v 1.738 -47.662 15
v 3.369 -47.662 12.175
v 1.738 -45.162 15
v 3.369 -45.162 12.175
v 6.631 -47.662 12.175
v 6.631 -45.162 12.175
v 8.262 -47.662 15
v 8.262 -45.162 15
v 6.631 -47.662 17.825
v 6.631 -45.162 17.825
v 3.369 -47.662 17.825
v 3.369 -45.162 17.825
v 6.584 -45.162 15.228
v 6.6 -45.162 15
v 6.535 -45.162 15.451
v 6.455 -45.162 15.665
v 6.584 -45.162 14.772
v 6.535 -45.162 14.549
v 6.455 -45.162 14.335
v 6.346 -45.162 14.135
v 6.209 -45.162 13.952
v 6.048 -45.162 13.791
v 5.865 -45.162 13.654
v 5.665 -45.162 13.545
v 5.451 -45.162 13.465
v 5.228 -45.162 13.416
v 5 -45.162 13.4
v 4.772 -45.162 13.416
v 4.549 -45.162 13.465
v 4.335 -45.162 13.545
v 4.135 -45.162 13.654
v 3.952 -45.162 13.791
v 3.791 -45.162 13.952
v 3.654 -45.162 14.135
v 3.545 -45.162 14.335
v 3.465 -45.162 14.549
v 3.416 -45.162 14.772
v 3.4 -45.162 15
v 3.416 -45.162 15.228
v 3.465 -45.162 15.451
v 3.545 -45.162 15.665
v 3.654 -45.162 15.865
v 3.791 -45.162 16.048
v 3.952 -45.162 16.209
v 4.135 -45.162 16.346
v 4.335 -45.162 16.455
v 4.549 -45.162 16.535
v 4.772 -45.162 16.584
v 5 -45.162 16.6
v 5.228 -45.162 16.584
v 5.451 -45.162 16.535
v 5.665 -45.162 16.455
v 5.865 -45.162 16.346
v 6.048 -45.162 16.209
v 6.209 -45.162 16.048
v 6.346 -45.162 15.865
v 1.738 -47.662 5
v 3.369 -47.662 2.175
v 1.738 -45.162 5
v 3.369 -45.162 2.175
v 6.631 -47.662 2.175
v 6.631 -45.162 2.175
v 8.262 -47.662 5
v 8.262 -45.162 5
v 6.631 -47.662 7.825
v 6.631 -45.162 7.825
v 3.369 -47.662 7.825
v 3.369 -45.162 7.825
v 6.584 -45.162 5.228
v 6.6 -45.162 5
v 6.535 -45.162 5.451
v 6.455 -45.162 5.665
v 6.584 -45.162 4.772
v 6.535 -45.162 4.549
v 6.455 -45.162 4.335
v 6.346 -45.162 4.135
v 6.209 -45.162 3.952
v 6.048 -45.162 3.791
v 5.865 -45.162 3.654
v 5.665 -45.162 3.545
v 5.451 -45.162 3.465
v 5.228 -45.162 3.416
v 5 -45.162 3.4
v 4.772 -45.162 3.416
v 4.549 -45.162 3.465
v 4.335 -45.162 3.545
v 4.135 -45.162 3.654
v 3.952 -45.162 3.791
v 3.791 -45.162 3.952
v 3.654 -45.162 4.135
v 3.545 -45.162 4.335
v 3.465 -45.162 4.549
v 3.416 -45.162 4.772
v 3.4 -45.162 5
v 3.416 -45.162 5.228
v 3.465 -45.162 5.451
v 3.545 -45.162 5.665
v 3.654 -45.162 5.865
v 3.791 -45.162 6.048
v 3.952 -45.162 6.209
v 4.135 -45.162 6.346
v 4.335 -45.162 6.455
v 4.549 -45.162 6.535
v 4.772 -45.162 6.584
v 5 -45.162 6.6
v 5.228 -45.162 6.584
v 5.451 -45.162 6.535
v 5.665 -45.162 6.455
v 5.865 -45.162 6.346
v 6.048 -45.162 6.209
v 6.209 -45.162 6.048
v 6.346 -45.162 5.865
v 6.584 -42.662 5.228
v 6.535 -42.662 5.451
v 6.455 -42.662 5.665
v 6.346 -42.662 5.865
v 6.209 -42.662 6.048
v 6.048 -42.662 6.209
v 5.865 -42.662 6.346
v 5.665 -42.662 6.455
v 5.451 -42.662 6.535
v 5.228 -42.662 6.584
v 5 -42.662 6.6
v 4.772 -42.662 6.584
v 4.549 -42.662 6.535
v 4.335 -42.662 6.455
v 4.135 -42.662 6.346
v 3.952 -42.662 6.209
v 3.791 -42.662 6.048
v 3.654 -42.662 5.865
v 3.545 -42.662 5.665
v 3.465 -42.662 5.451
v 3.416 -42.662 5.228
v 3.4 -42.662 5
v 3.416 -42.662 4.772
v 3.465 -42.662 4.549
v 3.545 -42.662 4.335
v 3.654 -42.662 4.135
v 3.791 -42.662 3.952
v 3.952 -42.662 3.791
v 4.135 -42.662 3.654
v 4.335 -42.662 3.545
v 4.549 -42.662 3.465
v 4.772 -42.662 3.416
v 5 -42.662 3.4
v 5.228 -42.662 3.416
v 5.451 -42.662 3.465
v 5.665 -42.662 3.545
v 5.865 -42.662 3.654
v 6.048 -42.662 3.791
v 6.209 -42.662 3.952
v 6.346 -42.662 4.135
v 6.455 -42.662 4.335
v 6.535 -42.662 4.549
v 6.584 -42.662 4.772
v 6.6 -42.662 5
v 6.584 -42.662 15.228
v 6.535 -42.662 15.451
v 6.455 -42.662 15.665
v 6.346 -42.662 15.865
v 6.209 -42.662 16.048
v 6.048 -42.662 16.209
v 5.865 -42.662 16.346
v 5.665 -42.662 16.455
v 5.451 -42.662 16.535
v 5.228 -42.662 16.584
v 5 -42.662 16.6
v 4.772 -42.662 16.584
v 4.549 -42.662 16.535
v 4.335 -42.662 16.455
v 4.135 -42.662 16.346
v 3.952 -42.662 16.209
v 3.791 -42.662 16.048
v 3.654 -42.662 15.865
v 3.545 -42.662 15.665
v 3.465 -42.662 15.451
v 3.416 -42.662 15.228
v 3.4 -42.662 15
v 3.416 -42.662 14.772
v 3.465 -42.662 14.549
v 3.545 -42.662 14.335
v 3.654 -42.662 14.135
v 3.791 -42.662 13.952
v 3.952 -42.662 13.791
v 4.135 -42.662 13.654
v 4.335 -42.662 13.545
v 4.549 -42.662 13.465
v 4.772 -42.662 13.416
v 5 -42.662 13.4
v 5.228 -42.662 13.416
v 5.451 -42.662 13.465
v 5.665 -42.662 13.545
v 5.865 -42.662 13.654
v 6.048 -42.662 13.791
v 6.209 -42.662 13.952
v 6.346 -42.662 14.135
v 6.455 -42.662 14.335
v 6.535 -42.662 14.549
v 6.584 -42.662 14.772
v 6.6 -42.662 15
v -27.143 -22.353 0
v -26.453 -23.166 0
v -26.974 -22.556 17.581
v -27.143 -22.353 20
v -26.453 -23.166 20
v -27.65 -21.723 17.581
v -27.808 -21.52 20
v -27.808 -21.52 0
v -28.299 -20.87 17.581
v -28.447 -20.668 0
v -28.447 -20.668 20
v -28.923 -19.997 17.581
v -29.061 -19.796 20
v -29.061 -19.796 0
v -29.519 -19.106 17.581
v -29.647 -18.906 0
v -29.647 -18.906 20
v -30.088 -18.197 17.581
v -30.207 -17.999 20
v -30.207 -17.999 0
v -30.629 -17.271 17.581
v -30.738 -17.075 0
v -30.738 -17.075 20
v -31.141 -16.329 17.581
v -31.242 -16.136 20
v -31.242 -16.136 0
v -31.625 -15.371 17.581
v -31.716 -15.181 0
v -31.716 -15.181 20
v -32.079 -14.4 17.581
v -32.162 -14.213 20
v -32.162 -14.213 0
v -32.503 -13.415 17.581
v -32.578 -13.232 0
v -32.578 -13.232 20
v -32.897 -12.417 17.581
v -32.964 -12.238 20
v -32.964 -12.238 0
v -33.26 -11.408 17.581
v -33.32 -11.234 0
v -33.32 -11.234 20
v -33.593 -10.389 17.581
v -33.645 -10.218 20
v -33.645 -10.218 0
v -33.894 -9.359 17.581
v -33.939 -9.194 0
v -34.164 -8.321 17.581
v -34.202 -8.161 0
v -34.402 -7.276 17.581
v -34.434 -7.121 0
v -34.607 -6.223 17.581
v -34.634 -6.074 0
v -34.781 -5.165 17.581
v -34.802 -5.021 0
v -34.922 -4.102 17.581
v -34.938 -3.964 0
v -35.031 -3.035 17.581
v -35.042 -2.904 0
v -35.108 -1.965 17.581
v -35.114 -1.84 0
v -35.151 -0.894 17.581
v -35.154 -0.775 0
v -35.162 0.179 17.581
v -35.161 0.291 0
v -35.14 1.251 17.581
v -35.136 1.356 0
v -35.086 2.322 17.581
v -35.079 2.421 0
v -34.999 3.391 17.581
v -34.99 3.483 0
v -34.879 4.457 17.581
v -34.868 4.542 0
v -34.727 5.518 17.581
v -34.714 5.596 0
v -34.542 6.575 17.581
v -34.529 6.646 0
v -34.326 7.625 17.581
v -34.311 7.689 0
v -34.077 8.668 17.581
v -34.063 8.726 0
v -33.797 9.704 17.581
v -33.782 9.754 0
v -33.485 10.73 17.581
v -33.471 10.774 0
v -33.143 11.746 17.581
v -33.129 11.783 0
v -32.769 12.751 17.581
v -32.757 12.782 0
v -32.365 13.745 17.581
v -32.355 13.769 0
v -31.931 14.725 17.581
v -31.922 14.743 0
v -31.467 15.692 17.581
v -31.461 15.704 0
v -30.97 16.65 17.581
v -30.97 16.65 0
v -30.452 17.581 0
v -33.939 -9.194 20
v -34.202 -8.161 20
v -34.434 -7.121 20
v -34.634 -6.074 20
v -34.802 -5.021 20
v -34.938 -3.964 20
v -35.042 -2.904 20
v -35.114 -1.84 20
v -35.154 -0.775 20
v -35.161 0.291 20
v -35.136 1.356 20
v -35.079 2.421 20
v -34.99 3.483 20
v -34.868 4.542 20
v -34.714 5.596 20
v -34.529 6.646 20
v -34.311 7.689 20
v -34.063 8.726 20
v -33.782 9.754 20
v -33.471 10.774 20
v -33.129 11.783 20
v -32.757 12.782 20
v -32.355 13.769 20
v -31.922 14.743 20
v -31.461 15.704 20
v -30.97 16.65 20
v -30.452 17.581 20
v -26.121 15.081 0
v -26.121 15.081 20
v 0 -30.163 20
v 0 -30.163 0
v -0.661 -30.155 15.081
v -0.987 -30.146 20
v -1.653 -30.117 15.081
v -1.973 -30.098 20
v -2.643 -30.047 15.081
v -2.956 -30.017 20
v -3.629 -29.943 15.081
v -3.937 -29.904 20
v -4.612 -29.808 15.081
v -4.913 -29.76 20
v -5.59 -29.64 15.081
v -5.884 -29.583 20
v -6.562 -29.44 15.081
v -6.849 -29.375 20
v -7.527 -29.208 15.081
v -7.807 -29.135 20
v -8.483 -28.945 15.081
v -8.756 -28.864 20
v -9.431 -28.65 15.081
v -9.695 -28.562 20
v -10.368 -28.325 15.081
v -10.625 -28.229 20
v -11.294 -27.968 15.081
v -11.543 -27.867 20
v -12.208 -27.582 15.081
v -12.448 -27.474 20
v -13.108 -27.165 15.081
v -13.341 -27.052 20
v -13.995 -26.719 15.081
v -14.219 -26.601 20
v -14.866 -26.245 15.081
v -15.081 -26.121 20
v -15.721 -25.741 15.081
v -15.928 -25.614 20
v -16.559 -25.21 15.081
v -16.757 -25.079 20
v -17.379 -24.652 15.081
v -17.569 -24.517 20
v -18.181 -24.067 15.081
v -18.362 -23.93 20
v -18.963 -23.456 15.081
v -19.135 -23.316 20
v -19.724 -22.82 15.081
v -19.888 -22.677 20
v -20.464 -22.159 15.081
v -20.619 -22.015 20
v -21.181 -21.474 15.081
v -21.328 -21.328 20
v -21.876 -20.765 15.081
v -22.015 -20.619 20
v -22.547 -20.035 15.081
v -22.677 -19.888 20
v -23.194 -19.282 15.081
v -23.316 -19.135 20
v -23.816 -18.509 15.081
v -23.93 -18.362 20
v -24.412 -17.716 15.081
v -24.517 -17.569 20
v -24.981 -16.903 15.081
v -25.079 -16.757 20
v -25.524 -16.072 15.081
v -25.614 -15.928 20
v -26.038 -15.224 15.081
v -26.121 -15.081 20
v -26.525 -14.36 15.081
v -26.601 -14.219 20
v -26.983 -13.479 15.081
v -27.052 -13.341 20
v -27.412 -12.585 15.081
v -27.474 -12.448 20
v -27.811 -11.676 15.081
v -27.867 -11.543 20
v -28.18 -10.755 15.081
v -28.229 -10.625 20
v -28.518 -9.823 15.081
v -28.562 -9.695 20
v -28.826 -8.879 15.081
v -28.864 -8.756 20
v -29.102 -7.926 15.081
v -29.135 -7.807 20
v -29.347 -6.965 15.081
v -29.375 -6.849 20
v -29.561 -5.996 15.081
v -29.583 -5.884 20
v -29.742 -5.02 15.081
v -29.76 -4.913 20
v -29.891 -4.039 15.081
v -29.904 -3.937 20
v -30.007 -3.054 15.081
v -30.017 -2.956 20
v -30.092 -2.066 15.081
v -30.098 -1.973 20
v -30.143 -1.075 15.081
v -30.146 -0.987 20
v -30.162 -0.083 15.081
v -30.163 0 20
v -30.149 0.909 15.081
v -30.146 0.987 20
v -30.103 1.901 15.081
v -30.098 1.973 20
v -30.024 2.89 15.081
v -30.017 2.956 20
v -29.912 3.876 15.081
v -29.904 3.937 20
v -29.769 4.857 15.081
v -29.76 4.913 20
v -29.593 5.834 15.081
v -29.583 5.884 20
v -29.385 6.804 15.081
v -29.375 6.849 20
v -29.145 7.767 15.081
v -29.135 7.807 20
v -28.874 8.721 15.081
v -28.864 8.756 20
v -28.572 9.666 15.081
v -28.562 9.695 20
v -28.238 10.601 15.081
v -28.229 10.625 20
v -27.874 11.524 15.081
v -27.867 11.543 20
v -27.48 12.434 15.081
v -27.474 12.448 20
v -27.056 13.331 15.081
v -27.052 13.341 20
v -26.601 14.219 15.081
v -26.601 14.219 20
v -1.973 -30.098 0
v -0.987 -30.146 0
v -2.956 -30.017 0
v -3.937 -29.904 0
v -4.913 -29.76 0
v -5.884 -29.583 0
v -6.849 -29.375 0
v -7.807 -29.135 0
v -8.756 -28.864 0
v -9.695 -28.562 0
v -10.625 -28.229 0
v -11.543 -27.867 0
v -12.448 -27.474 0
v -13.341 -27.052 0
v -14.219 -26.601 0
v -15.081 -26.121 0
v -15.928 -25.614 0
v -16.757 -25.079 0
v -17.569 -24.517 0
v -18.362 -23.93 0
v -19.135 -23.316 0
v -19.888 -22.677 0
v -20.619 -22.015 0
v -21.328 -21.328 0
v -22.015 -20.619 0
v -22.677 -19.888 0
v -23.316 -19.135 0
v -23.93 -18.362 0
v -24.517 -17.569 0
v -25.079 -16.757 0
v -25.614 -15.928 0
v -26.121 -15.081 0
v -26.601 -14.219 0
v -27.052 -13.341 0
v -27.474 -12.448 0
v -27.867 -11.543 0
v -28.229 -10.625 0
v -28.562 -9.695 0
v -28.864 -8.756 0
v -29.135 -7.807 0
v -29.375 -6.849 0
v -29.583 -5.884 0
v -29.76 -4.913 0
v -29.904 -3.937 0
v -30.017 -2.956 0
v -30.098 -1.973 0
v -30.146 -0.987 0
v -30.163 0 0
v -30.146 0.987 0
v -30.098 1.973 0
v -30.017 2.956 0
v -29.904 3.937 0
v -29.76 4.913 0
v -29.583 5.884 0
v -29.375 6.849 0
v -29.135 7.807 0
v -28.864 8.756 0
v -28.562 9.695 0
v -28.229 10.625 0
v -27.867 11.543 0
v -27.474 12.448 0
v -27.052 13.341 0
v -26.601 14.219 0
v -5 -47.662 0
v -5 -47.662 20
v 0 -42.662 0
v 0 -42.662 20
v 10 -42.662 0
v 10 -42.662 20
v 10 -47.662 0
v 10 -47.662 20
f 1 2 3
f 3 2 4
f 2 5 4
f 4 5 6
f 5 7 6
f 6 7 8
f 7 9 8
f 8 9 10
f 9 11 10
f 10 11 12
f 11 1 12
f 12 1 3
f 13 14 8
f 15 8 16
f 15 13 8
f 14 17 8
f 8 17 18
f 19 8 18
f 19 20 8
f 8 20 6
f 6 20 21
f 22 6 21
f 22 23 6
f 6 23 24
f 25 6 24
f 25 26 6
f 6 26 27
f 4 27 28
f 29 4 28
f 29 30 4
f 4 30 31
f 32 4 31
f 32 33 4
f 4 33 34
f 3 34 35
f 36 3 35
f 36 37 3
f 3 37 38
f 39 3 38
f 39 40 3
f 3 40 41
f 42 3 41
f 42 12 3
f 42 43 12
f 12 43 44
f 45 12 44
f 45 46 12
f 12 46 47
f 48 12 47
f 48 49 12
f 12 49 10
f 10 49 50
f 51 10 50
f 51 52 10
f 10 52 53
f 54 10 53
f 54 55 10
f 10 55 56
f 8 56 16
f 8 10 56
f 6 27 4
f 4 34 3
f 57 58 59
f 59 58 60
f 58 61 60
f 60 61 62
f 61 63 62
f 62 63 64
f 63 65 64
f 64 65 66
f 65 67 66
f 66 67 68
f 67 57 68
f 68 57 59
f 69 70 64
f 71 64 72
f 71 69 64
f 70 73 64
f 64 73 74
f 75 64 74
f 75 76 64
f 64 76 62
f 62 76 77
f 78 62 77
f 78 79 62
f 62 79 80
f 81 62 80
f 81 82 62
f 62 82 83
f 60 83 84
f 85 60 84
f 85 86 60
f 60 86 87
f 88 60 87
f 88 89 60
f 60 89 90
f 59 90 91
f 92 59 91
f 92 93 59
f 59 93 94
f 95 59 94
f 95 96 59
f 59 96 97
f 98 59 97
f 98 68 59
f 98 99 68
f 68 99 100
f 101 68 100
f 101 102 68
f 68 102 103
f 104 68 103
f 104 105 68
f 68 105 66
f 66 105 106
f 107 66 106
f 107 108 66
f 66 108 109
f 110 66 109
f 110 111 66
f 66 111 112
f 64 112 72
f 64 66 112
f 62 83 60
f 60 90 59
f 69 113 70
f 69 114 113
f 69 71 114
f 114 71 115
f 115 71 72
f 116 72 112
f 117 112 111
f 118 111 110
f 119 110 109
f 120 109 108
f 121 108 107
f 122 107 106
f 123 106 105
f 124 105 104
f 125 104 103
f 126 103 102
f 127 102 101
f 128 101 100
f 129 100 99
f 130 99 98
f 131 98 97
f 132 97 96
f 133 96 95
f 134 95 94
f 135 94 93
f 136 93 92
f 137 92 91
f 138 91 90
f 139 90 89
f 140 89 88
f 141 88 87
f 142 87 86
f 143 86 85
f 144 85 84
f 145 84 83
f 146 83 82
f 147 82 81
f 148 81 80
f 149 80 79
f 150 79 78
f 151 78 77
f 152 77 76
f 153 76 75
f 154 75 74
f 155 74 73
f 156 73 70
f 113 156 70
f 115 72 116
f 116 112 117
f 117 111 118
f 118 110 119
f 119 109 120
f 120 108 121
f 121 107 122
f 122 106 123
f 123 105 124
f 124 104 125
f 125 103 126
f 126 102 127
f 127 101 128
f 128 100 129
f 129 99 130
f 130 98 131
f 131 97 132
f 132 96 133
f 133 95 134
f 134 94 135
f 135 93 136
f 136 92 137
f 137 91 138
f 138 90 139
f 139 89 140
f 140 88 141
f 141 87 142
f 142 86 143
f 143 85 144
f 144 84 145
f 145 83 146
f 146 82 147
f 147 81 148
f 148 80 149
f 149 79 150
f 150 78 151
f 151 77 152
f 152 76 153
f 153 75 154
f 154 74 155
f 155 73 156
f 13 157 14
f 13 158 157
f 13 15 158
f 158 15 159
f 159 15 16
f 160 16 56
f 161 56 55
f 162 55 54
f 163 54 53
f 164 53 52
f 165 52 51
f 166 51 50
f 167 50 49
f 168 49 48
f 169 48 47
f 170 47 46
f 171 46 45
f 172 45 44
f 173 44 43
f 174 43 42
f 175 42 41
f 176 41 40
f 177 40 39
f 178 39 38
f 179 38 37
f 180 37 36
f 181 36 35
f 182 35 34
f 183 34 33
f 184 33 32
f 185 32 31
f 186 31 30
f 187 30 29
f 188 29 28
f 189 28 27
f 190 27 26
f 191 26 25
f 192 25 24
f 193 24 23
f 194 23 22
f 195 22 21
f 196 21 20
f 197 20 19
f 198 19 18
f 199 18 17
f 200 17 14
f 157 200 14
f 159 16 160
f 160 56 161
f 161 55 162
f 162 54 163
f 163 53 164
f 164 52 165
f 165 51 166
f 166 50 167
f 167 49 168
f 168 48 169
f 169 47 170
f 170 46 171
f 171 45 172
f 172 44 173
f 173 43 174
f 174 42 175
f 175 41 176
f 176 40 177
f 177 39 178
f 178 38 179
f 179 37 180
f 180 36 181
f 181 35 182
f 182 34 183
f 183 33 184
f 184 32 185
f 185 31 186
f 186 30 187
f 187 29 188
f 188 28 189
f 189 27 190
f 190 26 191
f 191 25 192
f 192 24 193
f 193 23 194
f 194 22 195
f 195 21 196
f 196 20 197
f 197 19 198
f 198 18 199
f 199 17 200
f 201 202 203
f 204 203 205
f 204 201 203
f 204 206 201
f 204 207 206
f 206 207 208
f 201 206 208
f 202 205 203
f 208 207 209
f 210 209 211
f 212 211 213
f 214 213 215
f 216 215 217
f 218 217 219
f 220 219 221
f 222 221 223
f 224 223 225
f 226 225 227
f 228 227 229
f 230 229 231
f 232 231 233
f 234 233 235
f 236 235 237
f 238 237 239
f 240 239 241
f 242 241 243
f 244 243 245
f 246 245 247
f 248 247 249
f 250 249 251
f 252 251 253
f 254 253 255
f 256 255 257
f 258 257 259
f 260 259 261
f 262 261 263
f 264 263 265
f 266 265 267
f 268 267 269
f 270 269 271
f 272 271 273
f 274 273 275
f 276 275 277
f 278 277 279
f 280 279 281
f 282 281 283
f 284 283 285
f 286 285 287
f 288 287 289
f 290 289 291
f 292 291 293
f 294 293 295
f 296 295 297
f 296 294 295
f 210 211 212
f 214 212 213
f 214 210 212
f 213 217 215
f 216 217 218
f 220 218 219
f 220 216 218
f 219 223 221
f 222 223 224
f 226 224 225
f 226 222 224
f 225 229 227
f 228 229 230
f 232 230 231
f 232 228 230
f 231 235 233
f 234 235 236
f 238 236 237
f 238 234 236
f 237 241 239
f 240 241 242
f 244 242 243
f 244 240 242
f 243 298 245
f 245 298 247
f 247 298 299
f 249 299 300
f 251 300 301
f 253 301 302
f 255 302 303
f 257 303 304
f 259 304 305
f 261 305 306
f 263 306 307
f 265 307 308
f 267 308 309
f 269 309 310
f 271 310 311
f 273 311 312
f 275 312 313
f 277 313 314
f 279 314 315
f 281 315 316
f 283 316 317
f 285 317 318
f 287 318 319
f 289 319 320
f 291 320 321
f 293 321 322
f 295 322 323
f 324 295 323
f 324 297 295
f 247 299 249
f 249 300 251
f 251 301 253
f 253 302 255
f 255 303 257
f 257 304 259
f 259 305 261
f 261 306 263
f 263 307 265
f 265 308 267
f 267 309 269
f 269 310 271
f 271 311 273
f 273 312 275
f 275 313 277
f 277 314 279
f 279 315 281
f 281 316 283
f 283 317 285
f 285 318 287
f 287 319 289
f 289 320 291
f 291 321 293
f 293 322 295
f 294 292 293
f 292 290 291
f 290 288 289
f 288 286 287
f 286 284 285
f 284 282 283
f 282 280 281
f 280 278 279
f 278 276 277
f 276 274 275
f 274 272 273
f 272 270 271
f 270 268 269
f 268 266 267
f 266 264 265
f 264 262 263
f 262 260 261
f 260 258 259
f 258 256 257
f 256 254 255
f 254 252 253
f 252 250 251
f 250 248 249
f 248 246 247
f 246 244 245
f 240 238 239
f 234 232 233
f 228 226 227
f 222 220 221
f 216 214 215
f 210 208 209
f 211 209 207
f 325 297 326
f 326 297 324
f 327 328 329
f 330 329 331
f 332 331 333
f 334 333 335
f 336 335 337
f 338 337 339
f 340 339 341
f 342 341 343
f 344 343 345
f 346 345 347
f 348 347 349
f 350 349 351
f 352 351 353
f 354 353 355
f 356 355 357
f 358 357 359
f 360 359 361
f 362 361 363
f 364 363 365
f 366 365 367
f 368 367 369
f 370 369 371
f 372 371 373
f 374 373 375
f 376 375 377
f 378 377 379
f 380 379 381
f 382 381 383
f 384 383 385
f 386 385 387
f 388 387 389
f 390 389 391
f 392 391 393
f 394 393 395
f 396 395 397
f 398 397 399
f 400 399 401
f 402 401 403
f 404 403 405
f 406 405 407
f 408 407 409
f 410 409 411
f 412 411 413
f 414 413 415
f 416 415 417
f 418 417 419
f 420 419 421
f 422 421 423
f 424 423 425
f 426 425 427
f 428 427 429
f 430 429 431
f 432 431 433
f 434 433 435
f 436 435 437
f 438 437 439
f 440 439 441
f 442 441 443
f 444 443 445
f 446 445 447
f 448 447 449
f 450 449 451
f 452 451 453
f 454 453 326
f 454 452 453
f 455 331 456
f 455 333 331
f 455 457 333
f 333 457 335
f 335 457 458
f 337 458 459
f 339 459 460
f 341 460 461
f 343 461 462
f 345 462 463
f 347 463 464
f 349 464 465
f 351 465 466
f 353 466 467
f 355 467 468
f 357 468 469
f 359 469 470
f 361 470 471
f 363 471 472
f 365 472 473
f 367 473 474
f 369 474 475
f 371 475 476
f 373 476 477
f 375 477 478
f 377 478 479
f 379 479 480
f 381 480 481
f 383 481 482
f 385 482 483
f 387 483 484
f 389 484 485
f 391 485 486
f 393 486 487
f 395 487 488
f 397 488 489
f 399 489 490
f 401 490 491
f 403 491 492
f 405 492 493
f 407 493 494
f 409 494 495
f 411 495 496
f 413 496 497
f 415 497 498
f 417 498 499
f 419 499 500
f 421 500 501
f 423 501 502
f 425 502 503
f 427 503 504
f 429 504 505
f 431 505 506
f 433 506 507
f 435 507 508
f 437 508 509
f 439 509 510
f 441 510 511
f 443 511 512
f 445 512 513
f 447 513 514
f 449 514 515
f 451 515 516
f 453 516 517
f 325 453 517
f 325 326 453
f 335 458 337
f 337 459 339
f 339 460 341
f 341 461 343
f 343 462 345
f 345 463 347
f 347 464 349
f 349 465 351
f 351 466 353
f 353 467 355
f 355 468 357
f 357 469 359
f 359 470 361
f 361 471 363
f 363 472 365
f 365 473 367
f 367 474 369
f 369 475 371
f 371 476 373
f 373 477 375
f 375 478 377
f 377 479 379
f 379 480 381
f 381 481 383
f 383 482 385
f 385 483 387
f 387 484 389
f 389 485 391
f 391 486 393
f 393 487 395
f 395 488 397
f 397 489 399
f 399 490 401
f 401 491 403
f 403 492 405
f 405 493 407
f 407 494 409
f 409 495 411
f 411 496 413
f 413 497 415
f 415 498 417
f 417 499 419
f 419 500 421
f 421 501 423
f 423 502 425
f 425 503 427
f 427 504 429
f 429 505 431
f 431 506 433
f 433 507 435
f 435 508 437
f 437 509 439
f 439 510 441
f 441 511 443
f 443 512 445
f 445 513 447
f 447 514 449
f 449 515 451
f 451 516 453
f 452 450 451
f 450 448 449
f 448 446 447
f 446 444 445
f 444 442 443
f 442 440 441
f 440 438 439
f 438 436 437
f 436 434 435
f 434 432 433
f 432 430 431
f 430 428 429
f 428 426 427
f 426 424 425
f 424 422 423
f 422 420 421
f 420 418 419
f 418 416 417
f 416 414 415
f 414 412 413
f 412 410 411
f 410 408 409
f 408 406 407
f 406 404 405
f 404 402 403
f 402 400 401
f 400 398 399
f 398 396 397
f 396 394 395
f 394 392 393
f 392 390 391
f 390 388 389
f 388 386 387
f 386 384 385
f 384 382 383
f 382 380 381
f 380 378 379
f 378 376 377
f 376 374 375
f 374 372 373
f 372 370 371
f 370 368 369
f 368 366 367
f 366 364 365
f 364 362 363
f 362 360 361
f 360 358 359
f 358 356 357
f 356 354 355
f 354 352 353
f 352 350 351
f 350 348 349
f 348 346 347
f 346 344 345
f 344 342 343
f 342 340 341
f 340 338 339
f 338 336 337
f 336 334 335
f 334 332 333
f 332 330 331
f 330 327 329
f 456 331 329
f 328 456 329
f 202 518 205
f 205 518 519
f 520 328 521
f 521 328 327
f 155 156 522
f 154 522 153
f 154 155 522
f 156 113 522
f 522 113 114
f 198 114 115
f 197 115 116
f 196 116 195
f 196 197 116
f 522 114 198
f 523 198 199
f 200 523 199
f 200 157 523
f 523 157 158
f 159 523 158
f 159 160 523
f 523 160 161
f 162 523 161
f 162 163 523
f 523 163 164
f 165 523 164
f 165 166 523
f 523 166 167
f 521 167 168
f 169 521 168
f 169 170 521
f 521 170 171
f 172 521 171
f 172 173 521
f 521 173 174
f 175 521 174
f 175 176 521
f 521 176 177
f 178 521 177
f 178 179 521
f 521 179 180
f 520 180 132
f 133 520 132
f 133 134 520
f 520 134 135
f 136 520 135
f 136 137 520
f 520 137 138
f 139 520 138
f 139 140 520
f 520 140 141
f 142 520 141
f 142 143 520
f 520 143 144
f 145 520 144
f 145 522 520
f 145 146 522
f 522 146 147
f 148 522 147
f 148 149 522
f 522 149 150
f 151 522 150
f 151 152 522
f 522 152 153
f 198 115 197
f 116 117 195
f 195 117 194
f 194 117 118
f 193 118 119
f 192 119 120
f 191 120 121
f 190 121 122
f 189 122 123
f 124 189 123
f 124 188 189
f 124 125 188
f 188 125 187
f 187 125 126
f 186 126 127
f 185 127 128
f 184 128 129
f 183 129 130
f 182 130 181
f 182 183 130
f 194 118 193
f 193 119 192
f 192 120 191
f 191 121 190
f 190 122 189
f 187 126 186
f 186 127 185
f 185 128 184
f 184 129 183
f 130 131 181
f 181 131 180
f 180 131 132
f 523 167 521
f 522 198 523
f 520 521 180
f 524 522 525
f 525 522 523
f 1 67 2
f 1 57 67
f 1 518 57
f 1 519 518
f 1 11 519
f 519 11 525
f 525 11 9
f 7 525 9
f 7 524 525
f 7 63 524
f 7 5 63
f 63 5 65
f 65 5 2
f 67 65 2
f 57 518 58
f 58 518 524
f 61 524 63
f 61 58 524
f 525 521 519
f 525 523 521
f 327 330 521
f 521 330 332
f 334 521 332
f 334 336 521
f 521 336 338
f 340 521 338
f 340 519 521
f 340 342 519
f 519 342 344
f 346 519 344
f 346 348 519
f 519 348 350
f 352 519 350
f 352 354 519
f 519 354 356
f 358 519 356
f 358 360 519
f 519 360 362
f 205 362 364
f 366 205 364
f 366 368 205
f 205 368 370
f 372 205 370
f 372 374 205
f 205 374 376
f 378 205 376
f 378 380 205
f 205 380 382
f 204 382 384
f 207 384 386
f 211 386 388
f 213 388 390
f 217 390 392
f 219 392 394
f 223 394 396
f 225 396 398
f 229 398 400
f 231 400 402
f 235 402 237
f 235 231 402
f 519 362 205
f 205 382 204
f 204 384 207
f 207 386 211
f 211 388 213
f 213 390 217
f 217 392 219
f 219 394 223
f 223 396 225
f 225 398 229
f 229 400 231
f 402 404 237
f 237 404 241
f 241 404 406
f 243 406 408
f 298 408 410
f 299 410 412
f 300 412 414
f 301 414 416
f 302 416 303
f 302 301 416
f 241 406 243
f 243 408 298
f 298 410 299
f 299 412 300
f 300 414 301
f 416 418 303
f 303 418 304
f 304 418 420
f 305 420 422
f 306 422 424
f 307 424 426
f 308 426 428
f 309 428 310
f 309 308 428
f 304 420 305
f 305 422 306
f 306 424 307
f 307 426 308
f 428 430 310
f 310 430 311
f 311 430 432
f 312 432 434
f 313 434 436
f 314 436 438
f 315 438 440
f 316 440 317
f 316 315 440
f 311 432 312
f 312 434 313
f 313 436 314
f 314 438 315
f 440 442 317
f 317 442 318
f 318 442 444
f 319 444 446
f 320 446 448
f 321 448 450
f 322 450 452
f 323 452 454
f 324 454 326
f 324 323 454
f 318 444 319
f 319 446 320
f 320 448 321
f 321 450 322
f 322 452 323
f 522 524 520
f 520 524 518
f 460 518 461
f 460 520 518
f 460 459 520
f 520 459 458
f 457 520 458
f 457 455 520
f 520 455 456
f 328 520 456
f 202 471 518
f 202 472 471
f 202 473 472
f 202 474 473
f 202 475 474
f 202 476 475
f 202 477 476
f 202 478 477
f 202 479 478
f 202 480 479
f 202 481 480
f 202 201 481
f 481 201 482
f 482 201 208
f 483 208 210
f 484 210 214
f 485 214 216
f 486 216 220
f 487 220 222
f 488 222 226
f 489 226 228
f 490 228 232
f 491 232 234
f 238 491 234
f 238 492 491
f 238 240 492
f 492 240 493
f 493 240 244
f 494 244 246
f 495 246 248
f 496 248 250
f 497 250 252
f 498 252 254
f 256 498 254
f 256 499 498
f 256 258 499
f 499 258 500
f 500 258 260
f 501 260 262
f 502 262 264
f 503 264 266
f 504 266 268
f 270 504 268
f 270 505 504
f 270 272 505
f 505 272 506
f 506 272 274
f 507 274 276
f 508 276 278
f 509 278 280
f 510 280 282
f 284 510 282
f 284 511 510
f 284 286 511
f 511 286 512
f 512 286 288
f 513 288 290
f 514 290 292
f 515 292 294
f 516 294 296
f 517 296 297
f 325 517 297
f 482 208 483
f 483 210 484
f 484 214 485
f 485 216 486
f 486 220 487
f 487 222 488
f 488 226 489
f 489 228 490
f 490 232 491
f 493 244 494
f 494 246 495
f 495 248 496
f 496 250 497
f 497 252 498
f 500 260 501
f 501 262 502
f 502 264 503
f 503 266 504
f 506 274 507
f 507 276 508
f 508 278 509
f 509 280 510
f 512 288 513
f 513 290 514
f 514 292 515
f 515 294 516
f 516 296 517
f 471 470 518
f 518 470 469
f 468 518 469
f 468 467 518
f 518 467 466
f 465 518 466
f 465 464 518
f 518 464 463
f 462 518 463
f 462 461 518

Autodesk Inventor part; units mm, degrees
ref_plane "YZ Plane" through (0, 0, 0) normal (1, 0, 0) x (0, 1, 0)
ref_plane "XZ Plane" through (0, 0, 0) normal (0, 1, 0) x (-1, 0, 0)
ref_plane "XY Plane" through (0, 0, 0) normal (0, 0, 1) x (1, 0, 0)
sketch "Sketch1" plane through (0, 0, 0) normal (0, 0, 1) x (1, 0, 0)
  arc A0 (-30.4516, 17.5812) -> (0, -35.1625) centre (0, 0) ccw
  line L0 (0, 0) -> (30.1625, 0)
  line L1 (0, 0) -> (17.5813, 30.4516)
  line L2 (0, 0) -> (-30.4516, 17.5812)
  line L3 (0, -30.1625) -> (0, -35.1625)
  arc A1 (-26.1215, 15.0812) -> (0, -30.1625) centre (0, 0) ccw
  arc A2 (30.1625, 0) -> (15.0813, 26.1215) centre (0, 0) ccw
  line L4 (0, -30.1625) -> (30.1625, -30.1625)
  line L5 (30.1625, -30.1625) -> (30.1625, -42.6625)
  line L6 (30.1625, -42.6625) -> (0, -42.6625)
  line L7 (0, -42.6625) -> (0, -30.1625)
  line L8 (0, -42.6625) -> (10, -42.6625)
  line L9 (10, -42.6625) -> (10, -47.6625)
  line L10 (10, -47.6625) -> (0, -47.6625)
  line L11 (0, -47.6625) -> (0, -42.6625)
  line L12 (0, -47.6625) -> (0, -35.1625)
  line L13 (0, -47.6625) -> (-5, -47.6625)
  line L14 (-5, -47.6625) -> (-5, -42.6625)
  line L15 (-5, -42.6625) -> (0, -42.6625)
  line L16 (0, -42.6625) -> (0, -47.6625)
  line L17 (-5, -47.6625) -> (-26.4528, -23.1657)
  line L18 (0, -42.6625) -> (0, -35.1625)
  dimension "d3" = 60
  dimension "d4" = 30.1625
  dimension "d5" = 35.1625
  dimension "d6" = 12.5
  dimension "d7" = 10
  dimension "d8" = 5
extrude "Extrusion1" add sketch "Sketch1" along normal blind 20 contours L2 A1 L3 A0 | A0 L7 L15 L14 L17 | L14 L15 L11 L13 | L6 L9 L10 L11
sketch "Sketch2" plane through (-5, -47.6625, 0) normal (0, -1, 0) x (1, 0, 0)
  line L0 (0, 0) -> (15, 0) projected
  line L1 (15, 0) -> (15, 20) projected
  line L2 (0, 20) -> (15, 20) projected
  line L3 (0, 0) -> (0, 20) projected
  line L4 (10, 20) -> (10, 0)
  circle A0 centre (10, 15) radius 1.6
  circle A1 centre (10, 5) radius 1.6
  point P0 (5, 0)
  dimension "d11" = 3.2
  dimension "d13" = 5
  dimension "d14" = 5
  dimension "d15" = 5
extrude "Extrusion2" cut sketch "Sketch2" against normal through all contours A1 L4 | L4 A1 | A0 L4 | L4 A0
sketch "Sketch3" plane through (-5, -47.6625, 0) normal (0, -1, 0) x (1, 0, 0)
  circle A0 centre (10, 5) radius 1.6 projected
  circle A1 centre (10, 15) radius 1.6 projected
  line L0 (6.738, 15) -> (8.369, 17.825)
  line L1 (8.369, 17.825) -> (11.631, 17.825)
  line L2 (11.631, 17.825) -> (13.262, 15)
  line L3 (13.262, 15) -> (11.631, 12.175)
  line L4 (11.631, 12.175) -> (8.369, 12.175)
  line L5 (8.369, 12.175) -> (6.738, 15)
  line L6 (6.738, 5) -> (8.369, 7.825)
  line L7 (8.369, 7.825) -> (11.631, 7.825)
  line L8 (11.631, 7.825) -> (13.262, 5)
  line L9 (13.262, 5) -> (11.631, 2.175)
  line L10 (11.631, 2.175) -> (8.369, 2.175)
  line L11 (8.369, 2.175) -> (6.738, 5)
  point P0 (5, 0)
  dimension "d18" = 5.65
extrude "Extrusion3" cut sketch "Sketch3" against normal blind 2.5
properties part number "clip"
